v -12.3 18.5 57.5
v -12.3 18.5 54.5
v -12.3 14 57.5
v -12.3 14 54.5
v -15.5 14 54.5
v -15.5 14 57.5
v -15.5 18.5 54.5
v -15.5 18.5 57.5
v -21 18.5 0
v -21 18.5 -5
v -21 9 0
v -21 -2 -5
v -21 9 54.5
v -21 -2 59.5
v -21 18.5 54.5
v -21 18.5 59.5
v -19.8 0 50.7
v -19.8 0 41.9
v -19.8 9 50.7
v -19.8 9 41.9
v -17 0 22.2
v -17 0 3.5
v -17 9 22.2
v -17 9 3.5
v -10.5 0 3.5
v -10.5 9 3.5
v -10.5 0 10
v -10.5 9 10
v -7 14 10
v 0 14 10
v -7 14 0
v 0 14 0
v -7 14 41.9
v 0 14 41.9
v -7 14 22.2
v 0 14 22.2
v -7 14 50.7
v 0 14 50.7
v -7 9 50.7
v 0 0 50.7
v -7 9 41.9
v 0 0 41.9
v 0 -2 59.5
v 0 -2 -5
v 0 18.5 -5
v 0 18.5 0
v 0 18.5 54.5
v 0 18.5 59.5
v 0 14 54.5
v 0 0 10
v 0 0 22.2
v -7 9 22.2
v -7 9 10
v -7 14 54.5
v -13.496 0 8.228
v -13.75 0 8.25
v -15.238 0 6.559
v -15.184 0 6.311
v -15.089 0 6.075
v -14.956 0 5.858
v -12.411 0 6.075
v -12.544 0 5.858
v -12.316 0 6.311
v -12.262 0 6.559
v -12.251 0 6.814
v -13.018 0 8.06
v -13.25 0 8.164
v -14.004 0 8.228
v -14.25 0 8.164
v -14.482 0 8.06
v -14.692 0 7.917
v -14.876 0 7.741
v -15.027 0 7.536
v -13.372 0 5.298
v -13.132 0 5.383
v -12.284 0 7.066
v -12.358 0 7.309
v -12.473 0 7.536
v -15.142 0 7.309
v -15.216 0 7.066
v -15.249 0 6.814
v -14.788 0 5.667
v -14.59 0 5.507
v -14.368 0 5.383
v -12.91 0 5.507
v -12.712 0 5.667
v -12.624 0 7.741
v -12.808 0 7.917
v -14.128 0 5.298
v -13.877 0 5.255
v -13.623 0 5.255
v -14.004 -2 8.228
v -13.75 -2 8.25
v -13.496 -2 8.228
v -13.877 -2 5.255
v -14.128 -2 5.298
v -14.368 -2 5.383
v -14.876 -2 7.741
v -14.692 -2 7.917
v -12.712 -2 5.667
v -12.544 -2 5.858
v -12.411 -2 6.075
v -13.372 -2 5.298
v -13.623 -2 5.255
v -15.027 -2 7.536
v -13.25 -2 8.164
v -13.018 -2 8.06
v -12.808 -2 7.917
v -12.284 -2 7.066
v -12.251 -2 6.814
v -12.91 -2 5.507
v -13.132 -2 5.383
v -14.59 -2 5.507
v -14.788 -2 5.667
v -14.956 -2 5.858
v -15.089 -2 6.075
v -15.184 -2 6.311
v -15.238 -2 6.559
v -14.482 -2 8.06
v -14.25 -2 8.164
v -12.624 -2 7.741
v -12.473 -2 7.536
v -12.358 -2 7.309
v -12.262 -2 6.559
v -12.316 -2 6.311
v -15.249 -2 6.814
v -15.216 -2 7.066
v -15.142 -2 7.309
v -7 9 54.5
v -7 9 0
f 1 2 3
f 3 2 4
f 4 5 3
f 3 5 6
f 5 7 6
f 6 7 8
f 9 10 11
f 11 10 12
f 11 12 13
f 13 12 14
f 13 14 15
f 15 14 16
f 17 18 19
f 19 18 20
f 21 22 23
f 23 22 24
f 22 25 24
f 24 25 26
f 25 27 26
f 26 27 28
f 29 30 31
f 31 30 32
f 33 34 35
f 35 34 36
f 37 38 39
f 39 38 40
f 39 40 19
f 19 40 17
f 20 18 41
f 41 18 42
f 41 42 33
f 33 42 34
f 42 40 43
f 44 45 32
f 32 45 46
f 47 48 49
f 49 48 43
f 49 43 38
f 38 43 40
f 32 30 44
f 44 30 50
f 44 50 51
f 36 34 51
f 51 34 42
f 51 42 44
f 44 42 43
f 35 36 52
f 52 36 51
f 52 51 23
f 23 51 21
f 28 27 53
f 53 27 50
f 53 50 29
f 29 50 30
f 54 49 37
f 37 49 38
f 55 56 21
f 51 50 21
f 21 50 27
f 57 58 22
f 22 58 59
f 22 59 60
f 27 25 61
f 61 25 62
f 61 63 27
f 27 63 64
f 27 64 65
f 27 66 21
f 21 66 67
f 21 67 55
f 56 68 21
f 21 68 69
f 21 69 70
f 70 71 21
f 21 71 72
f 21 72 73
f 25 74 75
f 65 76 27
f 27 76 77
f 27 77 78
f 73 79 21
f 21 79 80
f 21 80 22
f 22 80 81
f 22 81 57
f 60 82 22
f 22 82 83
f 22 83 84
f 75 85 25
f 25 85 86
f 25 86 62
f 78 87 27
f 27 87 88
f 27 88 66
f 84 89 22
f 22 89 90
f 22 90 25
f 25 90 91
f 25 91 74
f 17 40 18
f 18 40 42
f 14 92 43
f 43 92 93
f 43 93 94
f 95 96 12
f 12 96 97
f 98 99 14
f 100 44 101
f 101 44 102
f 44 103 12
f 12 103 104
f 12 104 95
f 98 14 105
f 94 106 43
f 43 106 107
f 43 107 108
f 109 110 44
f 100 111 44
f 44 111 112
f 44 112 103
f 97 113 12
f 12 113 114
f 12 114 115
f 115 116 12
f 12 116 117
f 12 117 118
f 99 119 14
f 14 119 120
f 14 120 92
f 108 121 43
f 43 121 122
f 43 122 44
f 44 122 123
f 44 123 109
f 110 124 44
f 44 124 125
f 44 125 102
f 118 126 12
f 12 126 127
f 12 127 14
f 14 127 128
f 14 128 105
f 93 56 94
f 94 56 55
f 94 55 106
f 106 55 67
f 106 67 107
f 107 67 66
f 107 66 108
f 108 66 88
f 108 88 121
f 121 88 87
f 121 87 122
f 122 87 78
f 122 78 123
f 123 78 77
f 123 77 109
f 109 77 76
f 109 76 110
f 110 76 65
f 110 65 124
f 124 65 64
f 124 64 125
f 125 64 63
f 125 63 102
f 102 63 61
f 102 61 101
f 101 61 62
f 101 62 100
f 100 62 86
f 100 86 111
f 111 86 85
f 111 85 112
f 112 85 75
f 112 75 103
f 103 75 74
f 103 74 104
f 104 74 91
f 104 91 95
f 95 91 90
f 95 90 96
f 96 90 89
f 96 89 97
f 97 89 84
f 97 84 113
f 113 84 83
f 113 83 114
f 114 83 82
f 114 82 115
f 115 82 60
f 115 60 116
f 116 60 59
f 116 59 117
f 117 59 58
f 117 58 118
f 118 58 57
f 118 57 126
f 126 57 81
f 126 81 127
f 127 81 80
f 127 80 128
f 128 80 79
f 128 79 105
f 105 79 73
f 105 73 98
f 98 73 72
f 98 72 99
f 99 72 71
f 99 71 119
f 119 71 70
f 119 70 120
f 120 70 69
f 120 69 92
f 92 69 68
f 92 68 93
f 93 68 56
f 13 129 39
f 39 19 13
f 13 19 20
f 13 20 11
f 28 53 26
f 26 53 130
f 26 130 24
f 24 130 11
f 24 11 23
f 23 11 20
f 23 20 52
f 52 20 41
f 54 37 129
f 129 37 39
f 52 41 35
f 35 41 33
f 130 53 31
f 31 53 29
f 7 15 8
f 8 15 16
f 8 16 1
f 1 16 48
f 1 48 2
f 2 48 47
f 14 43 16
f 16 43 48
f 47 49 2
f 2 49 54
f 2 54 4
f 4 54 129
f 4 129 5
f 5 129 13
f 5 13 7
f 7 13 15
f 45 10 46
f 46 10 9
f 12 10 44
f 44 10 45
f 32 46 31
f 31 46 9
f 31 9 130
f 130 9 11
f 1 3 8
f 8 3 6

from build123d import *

# Parameters (mm, degrees)
BOSS_EXTRUDE2_DEPTH = 14
SKETCH3_W           = 21
SKETCH3_H           = 54.5
SKETCH3_R           = 1.5
BOSS_EXTRUDE3_DEPTH = 2
SKETCH4_W           = 14
SKETCH4_H           = 54.5
CUT_EXTRUDE1_DEPTH  = 5
BOSS_EXTRUDE4_DEPTH = 5
BOSS_EXTRUDE6_DEPTH = 5
BOSS_EXTRUDE7_REACH = 10.7
SKETCH8_W           = 2
SKETCH8_H           = 4.5


with BuildPart() as part:
    # Sketch1 → Boss-Extrude2 (new body)
    with BuildSketch(Plane(origin=(0, 0, 0), x_dir=(1, 0, 0), z_dir=(0, 1, 0))):
        Polygon((0, 0), (-7, 0), (-21, 0), (-21, -54.5), (-13.577905098, -54.5), (0, -54.5), (0, -50.7), (-5.8, -50.7), (-19.8, -50.7), (-19.8, -41.9), (-5.8, -41.9), (0, -41.9), (0, -22.2), (-17, -22.2), (-17, -10), (-17, -3.5), (-10.5, -3.5), (-10.5, -10), (0, -10), align=None)
    extrude(amount=BOSS_EXTRUDE2_DEPTH)

    # Sketch3 → Boss-Extrude3 (add)
    with BuildSketch(Plane(origin=(0, 0, 0), x_dir=(1, 0, 0), z_dir=(0, 1, 0))):
        with Locations((-10.5, -27.25)):
            Rectangle(SKETCH3_W, SKETCH3_H)
        with Locations((-13.75, -6.75)):
            Circle(SKETCH3_R, mode=Mode.SUBTRACT)
    extrude(amount=-BOSS_EXTRUDE3_DEPTH)

    # Sketch4 → Cut-Extrude1 (cut)
    with BuildSketch(Plane(origin=(0, 14, 0), x_dir=(1, 0, 0), z_dir=(0, 1, 0))):
        with Locations((-14, -27.25)):
            Rectangle(SKETCH4_W, SKETCH4_H)
    extrude(amount=-CUT_EXTRUDE1_DEPTH, mode=Mode.SUBTRACT)

    # Sketch5 → Boss-Extrude4 (add)
    with BuildSketch(Plane.XY.offset(54.5)):
        Polygon((-12.3, -2), (0, -2), (0, 14), (-7, 14), (-7, 9), (-21, 9), (-21, -2), (-15.5, -2), align=None)
        Polygon((-7, 14), (0, 14), (0, 18.5), (-12.3, 18.5), (-12.3, 14), (-15.5, 14), (-15.5, 18.5), (-21, 18.5), (-21, 9), (-7, 9), align=None)
    extrude(amount=BOSS_EXTRUDE4_DEPTH)

    # Sketch7 → Boss-Extrude6 (add)
    with BuildSketch(Plane(origin=(0, 0, 0), x_dir=(-1, 0, 0), z_dir=(0, 0, -1))):
        Polygon((0, 18.5), (12.3, 18.5), (21, 18.5), (21, -2), (0, -2), align=None)
    extrude(amount=BOSS_EXTRUDE6_DEPTH)

    # Sketch8 → Boss-Extrude7 (add, up to next)
    with BuildSketch(Plane.ZY.offset(12.3), mode=Mode.PRIVATE) as boss_extrude7_sk1:
        with Locations((58.5, 16.25)):
            Rectangle(SKETCH8_W, SKETCH8_H)
    boss_extrude7_tool1 = extrude(boss_extrude7_sk1.sketch, amount=BOSS_EXTRUDE7_REACH, mode=Mode.PRIVATE) - part.part
    add(boss_extrude7_tool1.solids().sort_by_distance((-12.3, 16.25, 58.5))[0])


solid = part.part
